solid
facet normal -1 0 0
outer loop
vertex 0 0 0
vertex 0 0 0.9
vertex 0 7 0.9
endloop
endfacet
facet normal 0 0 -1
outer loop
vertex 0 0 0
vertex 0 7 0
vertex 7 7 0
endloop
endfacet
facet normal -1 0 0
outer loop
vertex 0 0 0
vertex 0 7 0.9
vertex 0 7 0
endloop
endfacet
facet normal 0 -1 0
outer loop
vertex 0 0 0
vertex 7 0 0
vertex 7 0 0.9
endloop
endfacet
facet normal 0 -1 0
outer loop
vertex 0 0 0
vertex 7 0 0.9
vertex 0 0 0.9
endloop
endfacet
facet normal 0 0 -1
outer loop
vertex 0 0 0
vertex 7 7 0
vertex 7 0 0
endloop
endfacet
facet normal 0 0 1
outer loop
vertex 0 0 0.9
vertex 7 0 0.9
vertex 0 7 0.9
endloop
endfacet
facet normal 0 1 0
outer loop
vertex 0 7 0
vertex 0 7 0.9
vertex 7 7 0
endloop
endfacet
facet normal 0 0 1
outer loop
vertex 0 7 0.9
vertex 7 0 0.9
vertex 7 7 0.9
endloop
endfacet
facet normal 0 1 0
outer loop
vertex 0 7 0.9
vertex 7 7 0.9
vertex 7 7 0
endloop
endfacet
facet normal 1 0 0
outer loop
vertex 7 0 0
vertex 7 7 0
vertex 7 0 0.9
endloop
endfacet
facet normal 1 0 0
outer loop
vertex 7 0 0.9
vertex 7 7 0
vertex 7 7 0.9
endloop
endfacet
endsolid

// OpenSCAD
/* Warning, this is a very basic generator with a lot of approximation 
input data : [VQFN, 8KX, 7x7x0.9mm, 48, , A, C04-00461A]
generated by com.zoubworld.electronics.cad.model3d.Basic
Date : Sun Feb 15 10:50:48 CET 2026
*/

//body
color("black")
translate([0,0,0])
cube([7.0,7.0,0.9], center=false);
